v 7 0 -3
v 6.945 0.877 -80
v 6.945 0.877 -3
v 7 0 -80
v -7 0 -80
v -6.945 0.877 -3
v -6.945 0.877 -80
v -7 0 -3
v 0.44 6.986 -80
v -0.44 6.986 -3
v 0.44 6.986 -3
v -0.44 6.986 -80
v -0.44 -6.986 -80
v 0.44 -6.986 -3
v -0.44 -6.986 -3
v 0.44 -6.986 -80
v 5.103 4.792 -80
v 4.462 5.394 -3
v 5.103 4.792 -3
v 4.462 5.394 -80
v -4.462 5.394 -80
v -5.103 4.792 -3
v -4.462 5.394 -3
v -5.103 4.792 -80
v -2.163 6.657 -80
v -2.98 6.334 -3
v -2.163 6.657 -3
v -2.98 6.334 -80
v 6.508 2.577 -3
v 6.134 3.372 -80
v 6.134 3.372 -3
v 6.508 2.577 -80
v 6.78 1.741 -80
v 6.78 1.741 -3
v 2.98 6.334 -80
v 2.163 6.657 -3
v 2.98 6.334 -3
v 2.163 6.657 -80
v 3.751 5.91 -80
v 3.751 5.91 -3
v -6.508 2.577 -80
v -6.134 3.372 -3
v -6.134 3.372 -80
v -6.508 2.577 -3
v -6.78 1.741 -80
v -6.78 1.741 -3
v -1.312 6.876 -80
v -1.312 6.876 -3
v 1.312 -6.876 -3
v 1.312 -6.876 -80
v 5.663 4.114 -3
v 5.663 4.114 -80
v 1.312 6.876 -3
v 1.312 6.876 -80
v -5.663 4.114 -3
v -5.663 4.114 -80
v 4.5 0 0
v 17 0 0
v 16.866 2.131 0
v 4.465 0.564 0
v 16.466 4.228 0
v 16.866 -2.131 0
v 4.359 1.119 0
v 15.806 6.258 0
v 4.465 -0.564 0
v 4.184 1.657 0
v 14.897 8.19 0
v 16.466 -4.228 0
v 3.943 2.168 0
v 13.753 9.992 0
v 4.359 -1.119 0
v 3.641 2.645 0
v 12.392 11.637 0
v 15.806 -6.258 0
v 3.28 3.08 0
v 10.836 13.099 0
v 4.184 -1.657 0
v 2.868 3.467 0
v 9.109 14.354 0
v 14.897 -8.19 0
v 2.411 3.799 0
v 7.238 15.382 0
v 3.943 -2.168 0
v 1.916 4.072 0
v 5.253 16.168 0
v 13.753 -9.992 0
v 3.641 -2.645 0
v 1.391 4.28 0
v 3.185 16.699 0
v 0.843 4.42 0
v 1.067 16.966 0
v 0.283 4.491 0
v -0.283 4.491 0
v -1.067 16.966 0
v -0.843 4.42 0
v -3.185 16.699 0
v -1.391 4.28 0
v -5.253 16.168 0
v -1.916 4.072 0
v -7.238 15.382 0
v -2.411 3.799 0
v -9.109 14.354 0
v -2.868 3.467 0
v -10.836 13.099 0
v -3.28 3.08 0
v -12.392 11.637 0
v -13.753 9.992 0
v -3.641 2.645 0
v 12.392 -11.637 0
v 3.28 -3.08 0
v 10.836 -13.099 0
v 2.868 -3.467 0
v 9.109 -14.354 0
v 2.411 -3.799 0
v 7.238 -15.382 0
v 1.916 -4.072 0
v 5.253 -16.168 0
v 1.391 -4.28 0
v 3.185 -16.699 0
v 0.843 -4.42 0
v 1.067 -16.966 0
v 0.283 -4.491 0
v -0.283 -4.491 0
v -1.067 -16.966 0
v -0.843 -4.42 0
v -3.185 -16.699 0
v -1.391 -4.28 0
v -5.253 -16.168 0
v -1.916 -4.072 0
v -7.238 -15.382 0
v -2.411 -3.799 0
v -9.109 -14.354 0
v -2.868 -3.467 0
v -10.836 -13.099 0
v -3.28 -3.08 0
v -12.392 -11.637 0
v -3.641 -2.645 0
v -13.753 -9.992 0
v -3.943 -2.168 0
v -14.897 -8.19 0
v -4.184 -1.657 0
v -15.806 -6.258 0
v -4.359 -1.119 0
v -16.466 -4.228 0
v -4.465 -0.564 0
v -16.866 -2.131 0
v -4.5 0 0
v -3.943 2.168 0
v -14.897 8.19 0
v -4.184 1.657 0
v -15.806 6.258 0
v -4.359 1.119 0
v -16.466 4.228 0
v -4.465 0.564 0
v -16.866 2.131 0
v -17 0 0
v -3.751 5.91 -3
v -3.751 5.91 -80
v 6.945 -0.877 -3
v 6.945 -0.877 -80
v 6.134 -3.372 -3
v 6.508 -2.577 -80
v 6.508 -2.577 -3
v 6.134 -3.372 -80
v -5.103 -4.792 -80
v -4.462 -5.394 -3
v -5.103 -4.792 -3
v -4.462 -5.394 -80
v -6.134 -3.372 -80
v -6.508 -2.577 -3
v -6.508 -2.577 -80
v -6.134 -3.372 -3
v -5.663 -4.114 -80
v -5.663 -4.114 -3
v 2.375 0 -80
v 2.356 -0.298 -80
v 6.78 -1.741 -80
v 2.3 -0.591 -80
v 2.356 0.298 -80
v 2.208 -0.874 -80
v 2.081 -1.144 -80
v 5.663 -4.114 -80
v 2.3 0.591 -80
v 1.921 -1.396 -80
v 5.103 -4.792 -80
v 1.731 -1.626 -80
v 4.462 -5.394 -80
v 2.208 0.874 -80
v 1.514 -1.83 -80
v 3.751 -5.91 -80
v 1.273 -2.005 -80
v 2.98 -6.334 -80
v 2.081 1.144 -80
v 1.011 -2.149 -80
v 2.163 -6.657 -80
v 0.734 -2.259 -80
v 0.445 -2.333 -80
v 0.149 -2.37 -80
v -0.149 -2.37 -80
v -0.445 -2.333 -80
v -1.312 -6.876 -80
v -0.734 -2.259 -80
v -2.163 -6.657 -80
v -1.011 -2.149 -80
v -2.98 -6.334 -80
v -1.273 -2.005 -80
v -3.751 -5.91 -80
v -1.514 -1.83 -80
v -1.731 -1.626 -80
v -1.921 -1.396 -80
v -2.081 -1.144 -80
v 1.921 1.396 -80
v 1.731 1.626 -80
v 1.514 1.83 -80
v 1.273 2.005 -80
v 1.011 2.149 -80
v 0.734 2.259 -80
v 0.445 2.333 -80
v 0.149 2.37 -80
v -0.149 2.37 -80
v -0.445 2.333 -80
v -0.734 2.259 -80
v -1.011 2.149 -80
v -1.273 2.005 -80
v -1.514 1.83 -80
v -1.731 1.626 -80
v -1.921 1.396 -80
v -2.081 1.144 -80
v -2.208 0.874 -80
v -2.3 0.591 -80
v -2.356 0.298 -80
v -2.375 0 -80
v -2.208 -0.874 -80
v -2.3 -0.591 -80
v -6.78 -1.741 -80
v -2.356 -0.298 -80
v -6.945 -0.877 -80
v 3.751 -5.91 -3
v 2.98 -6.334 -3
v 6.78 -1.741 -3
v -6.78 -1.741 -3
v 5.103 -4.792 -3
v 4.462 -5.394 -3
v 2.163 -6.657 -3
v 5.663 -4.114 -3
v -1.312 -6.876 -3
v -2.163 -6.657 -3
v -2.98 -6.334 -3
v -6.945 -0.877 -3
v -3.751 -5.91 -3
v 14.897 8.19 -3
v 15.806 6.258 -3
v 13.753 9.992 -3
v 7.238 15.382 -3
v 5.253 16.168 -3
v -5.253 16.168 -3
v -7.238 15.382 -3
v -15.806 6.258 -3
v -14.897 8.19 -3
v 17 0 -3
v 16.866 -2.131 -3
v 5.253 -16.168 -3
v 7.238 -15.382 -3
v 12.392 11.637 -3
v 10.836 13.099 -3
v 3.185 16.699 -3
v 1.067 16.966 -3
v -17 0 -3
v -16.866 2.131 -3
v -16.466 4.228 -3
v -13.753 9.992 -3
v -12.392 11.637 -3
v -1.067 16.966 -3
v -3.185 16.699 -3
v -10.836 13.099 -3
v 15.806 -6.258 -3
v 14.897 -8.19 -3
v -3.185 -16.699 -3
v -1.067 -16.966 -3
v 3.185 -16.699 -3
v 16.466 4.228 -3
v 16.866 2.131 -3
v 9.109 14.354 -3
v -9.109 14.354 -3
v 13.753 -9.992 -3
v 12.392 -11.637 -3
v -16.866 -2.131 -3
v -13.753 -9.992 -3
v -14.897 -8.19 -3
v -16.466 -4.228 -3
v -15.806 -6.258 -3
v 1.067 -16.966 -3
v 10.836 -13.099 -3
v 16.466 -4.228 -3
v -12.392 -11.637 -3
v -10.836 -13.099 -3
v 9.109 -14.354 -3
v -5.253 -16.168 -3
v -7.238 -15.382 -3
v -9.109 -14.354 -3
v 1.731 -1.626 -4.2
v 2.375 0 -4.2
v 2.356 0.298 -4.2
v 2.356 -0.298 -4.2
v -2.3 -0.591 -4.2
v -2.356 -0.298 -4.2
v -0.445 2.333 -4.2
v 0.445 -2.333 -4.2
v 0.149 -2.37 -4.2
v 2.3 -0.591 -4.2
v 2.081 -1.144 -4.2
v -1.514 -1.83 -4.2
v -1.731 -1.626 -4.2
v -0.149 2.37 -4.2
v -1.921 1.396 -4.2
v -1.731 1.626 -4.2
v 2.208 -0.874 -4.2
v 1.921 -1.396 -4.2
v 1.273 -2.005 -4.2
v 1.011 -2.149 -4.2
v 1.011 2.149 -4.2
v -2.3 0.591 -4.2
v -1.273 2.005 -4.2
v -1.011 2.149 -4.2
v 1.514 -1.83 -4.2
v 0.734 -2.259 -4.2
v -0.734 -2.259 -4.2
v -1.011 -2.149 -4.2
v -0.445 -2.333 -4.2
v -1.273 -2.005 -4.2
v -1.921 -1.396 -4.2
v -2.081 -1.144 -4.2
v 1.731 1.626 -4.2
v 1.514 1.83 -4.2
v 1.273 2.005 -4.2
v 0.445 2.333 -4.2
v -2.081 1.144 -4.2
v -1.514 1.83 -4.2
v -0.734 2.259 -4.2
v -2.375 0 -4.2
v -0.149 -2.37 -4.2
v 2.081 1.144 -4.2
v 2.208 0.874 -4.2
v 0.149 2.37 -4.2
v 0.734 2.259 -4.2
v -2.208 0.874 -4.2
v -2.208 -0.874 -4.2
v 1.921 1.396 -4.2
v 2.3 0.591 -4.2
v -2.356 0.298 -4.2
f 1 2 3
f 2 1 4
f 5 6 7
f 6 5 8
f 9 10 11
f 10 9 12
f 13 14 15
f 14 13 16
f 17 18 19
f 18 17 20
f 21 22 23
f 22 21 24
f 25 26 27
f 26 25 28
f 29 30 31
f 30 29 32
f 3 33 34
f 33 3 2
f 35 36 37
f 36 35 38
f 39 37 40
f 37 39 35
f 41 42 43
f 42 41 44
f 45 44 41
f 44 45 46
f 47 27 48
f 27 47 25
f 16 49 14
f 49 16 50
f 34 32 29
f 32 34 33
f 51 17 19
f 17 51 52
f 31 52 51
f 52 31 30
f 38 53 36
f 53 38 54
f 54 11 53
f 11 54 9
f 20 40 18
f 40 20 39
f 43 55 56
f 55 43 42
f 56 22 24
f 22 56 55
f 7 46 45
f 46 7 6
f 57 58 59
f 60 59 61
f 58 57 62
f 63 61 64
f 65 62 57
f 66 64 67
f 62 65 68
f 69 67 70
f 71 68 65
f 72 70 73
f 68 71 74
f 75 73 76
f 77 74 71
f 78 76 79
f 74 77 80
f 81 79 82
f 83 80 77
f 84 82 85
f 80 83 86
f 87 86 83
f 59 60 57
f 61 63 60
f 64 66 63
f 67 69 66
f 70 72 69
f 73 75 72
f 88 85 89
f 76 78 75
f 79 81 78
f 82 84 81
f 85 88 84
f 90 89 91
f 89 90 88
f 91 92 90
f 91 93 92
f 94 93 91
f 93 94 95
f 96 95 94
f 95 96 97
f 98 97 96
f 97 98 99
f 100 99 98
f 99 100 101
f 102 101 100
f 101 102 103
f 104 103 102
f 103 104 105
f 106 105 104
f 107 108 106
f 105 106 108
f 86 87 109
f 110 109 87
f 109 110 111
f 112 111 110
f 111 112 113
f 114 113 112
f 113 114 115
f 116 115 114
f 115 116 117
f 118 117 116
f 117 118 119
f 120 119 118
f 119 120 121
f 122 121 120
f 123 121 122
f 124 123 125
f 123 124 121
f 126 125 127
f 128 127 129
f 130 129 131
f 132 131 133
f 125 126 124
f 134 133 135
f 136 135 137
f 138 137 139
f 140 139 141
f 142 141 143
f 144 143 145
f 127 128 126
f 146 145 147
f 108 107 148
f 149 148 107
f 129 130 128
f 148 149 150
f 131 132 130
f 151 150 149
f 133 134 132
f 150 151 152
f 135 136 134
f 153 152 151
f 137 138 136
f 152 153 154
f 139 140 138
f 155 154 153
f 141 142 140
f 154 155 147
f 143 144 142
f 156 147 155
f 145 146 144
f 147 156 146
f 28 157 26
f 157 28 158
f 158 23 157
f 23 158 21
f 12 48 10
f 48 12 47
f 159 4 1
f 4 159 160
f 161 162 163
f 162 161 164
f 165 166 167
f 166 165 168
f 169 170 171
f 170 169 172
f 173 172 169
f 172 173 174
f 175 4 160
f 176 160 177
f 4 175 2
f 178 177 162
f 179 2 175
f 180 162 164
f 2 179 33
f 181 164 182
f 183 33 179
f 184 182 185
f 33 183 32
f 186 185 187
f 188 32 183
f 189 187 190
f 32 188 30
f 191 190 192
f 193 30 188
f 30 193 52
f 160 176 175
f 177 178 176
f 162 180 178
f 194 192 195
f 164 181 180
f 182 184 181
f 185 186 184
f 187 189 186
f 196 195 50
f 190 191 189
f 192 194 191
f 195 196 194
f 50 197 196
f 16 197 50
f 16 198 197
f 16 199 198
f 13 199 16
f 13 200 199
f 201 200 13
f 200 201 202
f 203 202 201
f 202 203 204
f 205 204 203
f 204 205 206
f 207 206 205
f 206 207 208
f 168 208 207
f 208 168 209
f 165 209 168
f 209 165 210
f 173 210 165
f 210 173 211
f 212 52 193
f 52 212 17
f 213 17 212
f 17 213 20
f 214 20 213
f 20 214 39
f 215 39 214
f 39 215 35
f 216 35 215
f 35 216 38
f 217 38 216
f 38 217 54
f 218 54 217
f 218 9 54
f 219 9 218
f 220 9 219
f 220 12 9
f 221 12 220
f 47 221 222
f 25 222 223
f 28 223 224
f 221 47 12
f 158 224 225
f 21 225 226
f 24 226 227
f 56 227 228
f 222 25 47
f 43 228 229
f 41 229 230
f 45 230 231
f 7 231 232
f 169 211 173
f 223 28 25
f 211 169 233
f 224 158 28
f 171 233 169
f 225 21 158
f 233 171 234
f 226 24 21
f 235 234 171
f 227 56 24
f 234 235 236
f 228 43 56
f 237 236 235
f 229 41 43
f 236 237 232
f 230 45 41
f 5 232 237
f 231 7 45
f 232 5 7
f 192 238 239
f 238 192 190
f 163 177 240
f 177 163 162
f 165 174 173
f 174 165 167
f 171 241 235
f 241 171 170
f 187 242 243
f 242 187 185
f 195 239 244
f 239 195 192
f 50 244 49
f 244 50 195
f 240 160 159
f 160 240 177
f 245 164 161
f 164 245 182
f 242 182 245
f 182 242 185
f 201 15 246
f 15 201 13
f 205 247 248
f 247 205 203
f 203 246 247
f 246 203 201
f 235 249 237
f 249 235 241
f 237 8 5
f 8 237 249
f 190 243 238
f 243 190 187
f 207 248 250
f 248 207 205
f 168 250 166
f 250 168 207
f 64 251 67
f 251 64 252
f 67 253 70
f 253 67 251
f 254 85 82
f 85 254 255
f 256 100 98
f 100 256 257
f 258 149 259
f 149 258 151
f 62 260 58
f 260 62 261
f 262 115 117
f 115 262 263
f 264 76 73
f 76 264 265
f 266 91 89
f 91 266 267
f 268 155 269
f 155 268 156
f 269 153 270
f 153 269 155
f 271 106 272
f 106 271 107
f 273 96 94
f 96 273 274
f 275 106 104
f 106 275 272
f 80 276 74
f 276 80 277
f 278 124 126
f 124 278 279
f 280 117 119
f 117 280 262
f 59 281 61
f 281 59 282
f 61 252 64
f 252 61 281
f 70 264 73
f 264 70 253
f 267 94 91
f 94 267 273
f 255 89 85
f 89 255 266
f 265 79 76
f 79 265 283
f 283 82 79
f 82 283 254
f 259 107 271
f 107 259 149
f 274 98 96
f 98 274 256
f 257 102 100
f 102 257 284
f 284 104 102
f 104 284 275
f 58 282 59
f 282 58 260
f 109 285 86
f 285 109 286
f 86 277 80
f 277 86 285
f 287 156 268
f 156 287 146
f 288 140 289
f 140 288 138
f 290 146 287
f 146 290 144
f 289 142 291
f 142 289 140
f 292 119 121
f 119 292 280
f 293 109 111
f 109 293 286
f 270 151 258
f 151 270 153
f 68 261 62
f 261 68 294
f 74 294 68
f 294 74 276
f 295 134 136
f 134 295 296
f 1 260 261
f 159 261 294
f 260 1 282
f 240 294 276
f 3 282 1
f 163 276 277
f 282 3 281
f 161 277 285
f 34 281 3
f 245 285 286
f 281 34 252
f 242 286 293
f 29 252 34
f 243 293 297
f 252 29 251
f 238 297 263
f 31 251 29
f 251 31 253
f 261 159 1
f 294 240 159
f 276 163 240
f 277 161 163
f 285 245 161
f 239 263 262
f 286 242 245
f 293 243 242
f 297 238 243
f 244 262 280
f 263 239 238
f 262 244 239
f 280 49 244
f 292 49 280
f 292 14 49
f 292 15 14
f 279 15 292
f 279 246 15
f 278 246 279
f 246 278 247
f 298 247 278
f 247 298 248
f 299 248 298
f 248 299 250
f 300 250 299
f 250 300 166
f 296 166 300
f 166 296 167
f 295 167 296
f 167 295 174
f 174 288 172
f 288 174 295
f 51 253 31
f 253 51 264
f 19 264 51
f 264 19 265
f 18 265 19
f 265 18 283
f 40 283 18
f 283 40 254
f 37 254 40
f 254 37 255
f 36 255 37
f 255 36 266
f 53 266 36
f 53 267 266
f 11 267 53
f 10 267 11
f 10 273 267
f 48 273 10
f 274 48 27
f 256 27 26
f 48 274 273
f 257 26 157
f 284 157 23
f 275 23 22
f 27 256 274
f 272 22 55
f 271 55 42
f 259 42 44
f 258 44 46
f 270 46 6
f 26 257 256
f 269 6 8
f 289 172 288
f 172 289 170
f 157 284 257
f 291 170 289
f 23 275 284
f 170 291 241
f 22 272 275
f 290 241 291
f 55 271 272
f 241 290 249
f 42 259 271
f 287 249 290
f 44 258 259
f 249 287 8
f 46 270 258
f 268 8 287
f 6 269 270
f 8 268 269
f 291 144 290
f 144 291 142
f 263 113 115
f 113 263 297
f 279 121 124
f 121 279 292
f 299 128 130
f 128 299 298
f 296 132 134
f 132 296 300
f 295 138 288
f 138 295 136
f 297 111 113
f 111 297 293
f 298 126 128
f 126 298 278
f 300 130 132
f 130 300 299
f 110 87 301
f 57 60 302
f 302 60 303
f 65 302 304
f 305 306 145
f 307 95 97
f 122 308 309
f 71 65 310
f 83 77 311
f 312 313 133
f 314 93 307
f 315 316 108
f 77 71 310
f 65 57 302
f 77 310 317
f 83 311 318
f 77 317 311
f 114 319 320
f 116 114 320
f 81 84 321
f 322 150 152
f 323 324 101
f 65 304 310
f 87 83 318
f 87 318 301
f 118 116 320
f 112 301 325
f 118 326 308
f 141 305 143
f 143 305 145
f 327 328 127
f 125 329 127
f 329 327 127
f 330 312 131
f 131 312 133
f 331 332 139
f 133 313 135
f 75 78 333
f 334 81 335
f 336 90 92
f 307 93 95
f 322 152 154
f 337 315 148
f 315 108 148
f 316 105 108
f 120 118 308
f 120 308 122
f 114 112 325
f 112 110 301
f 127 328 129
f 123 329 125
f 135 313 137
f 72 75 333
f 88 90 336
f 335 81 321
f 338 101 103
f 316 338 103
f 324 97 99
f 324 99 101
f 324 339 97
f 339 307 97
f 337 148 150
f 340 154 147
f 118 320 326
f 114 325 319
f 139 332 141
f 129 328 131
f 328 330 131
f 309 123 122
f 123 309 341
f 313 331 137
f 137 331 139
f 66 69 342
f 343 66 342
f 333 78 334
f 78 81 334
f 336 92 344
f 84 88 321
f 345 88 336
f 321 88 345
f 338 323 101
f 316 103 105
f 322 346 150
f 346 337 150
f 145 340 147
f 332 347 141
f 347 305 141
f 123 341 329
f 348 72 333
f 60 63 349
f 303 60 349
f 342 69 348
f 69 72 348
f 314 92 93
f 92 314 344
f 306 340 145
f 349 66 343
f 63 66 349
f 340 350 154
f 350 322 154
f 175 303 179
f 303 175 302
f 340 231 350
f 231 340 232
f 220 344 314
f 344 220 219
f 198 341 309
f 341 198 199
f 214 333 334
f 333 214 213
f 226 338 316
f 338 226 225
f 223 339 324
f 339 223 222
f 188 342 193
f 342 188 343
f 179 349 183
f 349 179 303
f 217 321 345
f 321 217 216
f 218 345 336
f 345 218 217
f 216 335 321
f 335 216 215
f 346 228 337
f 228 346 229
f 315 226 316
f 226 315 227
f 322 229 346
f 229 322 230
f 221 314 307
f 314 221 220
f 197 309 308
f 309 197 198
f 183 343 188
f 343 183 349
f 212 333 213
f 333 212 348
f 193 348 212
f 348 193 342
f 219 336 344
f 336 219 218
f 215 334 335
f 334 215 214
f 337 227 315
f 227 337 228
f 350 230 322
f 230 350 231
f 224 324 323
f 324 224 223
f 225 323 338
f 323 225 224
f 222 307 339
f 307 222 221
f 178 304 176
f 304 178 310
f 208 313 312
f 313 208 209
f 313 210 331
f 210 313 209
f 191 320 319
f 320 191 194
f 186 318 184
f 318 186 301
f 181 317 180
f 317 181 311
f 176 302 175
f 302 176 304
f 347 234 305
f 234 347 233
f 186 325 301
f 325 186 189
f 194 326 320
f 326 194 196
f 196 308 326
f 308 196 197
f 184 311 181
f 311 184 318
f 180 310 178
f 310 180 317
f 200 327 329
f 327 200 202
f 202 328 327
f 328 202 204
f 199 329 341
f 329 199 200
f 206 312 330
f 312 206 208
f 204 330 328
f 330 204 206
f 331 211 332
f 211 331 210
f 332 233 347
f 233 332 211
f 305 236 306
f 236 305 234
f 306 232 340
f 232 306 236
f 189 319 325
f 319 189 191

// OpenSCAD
$fn = 50;


difference() {
	union() {
		translate(v = [0, 0, -80.0000000000]) {
			cylinder(h = 80, r = 7.0000000000);
		}
		translate(v = [0, 0, -3.0000000000]) {
			cylinder(h = 3, r = 17.0000000000);
		}
	}
	union() {
		translate(v = [0, 0, 0]) {
			rotate(a = [0, 0, 0]) {
				difference() {
					union() {
						#translate(v = [0, 0, -80.0000000000]) {
							cylinder(h = 80, r = 2.2500000000);
						}
						#translate(v = [0, 0, -4.2000000000]) {
							cylinder(h = 4.2000000000, r1 = 2.3750000000, r2 = 4.5000000000);
						}
						#translate(v = [0, 0, -80.0000000000]) {
							cylinder(h = 80, r = 2.3750000000);
						}
						#translate(v = [0, 0, -80.0000000000]) {
							cylinder(h = 80, r = 2.2500000000);
						}
					}
					union();
				}
			}
		}
	}
}
